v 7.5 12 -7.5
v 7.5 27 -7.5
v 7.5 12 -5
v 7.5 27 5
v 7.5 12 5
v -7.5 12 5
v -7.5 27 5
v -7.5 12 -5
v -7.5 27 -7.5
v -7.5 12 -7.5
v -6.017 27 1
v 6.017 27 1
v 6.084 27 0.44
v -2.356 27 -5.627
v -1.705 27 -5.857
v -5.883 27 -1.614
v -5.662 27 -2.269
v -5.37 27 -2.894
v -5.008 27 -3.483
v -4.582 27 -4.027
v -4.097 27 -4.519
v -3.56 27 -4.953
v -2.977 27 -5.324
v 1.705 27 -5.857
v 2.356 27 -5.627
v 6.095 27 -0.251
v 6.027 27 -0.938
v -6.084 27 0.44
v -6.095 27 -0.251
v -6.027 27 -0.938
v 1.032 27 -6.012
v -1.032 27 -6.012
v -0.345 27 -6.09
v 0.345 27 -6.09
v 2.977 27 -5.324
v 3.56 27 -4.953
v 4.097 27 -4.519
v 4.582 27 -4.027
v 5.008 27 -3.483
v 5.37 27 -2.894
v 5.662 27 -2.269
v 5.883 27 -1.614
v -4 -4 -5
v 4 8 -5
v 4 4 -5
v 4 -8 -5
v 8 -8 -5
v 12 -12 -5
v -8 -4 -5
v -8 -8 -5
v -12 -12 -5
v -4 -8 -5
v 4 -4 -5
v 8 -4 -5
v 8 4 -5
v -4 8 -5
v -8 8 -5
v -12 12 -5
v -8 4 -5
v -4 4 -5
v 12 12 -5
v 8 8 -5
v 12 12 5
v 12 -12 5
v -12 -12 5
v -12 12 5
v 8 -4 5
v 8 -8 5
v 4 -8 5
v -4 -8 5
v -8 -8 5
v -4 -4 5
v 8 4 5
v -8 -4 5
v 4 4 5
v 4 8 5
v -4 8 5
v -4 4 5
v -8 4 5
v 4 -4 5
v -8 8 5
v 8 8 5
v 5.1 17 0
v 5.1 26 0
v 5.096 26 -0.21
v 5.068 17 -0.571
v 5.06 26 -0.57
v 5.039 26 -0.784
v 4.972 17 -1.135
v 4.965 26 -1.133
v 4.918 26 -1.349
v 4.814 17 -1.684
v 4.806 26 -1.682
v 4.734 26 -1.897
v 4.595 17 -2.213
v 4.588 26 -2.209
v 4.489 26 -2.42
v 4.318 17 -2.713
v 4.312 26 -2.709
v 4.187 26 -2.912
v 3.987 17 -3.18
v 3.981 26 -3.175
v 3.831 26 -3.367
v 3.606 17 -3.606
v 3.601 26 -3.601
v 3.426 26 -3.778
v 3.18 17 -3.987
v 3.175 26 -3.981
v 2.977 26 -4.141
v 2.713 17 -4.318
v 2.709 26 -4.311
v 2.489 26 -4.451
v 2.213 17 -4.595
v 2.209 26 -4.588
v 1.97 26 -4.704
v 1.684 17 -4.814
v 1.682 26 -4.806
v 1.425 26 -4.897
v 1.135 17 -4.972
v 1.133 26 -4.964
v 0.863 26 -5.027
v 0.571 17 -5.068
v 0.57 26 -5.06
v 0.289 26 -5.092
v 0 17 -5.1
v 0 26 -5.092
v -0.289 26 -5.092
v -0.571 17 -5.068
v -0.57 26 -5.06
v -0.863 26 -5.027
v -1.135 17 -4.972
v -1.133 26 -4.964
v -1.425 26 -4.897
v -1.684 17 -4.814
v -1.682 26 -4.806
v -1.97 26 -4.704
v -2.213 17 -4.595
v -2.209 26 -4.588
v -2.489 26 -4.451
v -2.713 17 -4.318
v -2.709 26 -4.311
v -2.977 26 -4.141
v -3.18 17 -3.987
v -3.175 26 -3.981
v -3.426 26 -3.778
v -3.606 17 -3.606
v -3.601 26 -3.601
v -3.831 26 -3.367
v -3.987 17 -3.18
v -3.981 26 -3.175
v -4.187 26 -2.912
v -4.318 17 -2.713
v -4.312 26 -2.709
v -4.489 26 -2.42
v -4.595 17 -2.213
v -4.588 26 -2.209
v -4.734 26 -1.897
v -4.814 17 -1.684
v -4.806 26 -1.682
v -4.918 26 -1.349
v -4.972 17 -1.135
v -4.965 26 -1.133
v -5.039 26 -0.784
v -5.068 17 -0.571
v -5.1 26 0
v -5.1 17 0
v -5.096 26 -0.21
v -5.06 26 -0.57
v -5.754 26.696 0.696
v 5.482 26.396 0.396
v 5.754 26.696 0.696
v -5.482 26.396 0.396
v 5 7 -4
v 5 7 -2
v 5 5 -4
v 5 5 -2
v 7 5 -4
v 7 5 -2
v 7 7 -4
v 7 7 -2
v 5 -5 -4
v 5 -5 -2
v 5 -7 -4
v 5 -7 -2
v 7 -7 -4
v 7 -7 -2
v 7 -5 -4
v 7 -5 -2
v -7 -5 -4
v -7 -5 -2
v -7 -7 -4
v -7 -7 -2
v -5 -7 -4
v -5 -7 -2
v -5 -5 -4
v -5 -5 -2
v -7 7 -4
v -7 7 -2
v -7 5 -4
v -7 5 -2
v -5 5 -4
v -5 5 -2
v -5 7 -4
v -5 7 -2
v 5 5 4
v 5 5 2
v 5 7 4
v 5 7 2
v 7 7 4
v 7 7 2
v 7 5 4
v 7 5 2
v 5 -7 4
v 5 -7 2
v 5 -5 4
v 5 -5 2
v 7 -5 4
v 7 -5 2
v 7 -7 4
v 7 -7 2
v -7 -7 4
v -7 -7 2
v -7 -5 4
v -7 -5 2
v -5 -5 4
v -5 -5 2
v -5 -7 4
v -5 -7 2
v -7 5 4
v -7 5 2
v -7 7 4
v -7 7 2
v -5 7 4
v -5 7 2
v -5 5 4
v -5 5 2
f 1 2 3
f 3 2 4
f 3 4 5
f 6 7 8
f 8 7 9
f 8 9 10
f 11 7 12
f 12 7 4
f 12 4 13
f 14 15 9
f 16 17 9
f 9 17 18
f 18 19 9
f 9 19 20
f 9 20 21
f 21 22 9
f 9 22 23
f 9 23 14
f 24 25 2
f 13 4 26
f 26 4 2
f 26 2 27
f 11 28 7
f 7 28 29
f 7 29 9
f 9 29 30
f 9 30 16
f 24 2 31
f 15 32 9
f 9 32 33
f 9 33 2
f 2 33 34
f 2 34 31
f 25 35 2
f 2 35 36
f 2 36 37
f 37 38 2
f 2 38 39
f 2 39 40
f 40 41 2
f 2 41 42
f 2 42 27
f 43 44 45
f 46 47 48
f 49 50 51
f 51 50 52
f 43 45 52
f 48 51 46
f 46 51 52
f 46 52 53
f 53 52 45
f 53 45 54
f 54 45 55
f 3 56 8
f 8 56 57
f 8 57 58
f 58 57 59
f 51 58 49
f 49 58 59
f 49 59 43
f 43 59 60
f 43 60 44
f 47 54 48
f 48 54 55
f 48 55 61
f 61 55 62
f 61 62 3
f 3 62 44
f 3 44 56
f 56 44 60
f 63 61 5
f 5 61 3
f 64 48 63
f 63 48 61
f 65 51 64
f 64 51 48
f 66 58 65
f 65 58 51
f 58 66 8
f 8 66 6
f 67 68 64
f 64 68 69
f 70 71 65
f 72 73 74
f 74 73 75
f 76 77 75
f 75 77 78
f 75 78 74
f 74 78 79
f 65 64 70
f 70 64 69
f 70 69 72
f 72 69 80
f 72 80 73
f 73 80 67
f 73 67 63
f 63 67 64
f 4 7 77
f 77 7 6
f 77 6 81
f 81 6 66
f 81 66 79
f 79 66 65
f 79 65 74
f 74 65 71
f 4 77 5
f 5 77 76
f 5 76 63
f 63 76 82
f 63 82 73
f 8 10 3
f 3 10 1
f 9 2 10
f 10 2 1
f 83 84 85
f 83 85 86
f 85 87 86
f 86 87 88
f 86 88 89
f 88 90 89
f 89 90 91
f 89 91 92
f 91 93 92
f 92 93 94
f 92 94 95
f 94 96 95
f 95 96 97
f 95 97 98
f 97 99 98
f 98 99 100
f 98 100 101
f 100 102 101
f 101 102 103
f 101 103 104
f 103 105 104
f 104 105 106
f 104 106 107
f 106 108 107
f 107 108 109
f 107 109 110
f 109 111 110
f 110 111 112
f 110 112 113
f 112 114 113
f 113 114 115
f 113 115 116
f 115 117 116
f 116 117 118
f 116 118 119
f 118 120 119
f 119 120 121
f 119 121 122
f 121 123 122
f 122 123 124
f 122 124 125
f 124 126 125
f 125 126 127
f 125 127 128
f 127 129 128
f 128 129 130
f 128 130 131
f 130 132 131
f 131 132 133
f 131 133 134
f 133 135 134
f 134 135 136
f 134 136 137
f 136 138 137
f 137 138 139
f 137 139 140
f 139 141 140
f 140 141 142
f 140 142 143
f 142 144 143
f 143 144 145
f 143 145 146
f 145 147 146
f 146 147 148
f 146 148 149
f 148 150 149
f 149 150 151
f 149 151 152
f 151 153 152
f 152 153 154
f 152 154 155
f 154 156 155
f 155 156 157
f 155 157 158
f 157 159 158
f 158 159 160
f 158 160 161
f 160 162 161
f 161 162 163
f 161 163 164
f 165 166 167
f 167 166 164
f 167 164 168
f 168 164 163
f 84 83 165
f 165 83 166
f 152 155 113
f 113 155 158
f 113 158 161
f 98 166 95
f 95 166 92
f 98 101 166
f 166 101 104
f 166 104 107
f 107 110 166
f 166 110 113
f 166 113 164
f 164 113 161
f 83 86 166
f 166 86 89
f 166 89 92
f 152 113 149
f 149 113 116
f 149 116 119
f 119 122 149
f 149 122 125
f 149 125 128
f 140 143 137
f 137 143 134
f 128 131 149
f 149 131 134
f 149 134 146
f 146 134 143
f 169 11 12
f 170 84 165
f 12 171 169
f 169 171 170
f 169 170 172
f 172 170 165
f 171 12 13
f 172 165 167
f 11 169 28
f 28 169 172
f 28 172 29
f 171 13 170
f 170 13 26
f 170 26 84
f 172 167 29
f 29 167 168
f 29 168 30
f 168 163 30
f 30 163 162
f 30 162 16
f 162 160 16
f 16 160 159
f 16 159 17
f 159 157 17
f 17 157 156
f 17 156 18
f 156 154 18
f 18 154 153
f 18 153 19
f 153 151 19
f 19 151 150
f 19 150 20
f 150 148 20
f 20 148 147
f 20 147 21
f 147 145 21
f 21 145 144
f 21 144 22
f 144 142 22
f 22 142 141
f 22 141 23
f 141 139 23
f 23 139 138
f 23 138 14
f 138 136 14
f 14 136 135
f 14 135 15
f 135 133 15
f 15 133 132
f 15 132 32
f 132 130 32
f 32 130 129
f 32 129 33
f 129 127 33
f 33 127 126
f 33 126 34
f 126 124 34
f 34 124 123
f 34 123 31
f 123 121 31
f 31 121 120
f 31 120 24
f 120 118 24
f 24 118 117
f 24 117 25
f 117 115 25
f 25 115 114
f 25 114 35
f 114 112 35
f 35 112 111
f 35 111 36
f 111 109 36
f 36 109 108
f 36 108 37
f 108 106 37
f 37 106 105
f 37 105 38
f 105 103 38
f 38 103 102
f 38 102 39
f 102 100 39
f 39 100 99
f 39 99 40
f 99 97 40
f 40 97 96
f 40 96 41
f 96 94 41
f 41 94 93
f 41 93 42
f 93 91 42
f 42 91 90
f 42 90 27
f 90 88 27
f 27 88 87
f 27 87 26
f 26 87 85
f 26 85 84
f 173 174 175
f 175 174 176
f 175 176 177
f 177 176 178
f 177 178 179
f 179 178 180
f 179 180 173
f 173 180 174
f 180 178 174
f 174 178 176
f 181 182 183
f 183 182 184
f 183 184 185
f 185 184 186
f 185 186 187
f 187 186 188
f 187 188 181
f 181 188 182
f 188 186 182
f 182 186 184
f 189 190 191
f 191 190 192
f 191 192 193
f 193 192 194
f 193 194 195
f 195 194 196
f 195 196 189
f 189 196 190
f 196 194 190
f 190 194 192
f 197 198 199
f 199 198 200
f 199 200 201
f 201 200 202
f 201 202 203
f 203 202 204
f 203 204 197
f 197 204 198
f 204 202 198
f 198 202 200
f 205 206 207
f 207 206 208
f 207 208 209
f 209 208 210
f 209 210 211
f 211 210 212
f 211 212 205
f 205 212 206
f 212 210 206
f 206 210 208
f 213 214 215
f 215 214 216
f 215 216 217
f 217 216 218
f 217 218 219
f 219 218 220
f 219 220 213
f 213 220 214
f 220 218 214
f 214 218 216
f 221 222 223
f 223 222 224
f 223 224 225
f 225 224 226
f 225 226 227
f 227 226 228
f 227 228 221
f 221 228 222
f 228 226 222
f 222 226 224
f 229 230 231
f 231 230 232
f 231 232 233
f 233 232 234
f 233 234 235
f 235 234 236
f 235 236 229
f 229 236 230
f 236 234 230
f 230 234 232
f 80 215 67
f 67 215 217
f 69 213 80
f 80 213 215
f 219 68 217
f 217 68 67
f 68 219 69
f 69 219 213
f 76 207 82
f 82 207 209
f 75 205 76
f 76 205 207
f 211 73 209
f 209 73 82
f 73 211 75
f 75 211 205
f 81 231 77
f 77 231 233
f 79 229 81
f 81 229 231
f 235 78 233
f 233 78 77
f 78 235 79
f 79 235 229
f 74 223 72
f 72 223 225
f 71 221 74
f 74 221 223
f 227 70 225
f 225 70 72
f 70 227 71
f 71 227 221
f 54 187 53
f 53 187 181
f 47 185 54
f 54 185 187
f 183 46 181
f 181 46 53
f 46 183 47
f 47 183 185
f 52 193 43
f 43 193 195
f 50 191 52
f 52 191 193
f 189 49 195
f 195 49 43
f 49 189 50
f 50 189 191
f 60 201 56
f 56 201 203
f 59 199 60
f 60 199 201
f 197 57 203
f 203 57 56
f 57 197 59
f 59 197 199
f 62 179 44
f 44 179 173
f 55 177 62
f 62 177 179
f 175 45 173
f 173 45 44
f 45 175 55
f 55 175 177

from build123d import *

# Parameters (mm, degrees)
AUFSATZ_LINEAR_AUSTRAGEN1_DEPTH      = 5
AUFSATZ_LINEAR_AUSTRAGEN1_DEPTH_BACK = 5
SKIZZE1_W                            = 24
SKIZZE1_H                            = 24
SKIZZE3_W                            = 15
SKIZZE3_H                            = 15
AUFSATZ_LINEAR_AUSTRAGEN2_DEPTH      = 15
SCHNITT_LINEAR_AUSTRAGEN1_DEPTH      = 10
FASE1_SIZE                           = 1
SCHNITT_LINEAR_START                 = -11
SKIZZE6_W                            = 2
SKIZZE6_H                            = 2
SCHNITT_LINEAR_AUSTRAGEN2_DEPTH      = 12
FASE2_SIZE                           = 1
SKIZZE12_W                           = 15
SKIZZE12_H                           = 15
SCHNITT_LINEAR_AUSTRAGEN4_DEPTH      = 2.5


with BuildPart() as part:
    # Skizze1 → Aufsatz-Linear austragen1 (new, two sides: drawn at the far end of the back side and taken through both)
    with BuildSketch(Plane.XY.offset(-AUFSATZ_LINEAR_AUSTRAGEN1_DEPTH_BACK)):
        Rectangle(SKIZZE1_W, SKIZZE1_H)
    extrude(amount=AUFSATZ_LINEAR_AUSTRAGEN1_DEPTH + AUFSATZ_LINEAR_AUSTRAGEN1_DEPTH_BACK)

    # Skizze3 → Aufsatz-Linear austragen2 (add)
    with BuildSketch(Plane(origin=(0, 12, 0), x_dir=(1, 0, 0), z_dir=(0, 1, 0))):
        Rectangle(SKIZZE3_W, SKIZZE3_H)
    extrude(amount=AUFSATZ_LINEAR_AUSTRAGEN2_DEPTH)

    # Skizze5 → Schnitt-Linear austragen1 (cut)
    with BuildSketch(Plane(origin=(0, 27, 0), x_dir=(1, 0, 0), z_dir=(0, 1, 0))):
        with BuildLine():
            Line((-5.1, 0), (5.1, 0))
            ThreePointArc((5.1, 0), (0, 5.1), (-5.1, 0))
        make_face()
    extrude(amount=-SCHNITT_LINEAR_AUSTRAGEN1_DEPTH, mode=Mode.SUBTRACT)

    # Fase1
    fase1_edges = [part.edges().sort_by_distance(p)[0] for p in [
        (0, 27, -5.1),
        (0, 27, 0),
    ]]
    chamfer(fase1_edges, length=FASE1_SIZE)

    # Skizze6 → Schnitt-Linear austragen2 (cut)
    with BuildSketch(Plane.XY.offset(-3).offset(SCHNITT_LINEAR_START)):
        with Locations((6, 6)):
            Rectangle(SKIZZE6_W, SKIZZE6_H)
        with Locations((6, -6)):
            Rectangle(SKIZZE6_W, SKIZZE6_H)
        with Locations((-6, -6)):
            Rectangle(SKIZZE6_W, SKIZZE6_H)
        with Locations((-6, 6)):
            Rectangle(SKIZZE6_W, SKIZZE6_H)
    schnitt_linear_austragen2 = extrude(amount=SCHNITT_LINEAR_AUSTRAGEN2_DEPTH, mode=Mode.SUBTRACT)

    # Spiegeln1: Schnitt-Linear austragen2 across plane
    add(schnitt_linear_austragen2.mirror(Plane.XY), mode=Mode.SUBTRACT)

    # Fase2
    fase2_edges = [part.edges().sort_by_distance(p)[0] for p in [
        (6, 5, 5),
        (7, 6, 5),
        (6, 7, 5),
        (5, 6, 5),
        (6, -7, 5),
        (7, -6, 5),
        (6, -5, 5),
        (5, -6, 5),
        (-6, -7, 5),
        (-5, -6, 5),
        (-6, -5, 5),
        (-7, -6, 5),
        (-6, 5, 5),
        (-5, 6, 5),
        (-6, 7, 5),
        (-7, 6, 5),
        (6, 7, -5),
        (7, 6, -5),
        (6, 5, -5),
        (5, 6, -5),
        (6, -5, -5),
        (7, -6, -5),
        (6, -7, -5),
        (5, -6, -5),
        (-6, -5, -5),
        (-5, -6, -5),
        (-6, -7, -5),
        (-7, -6, -5),
        (-6, 7, -5),
        (-5, 6, -5),
        (-6, 5, -5),
        (-7, 6, -5),
    ]]
    chamfer(fase2_edges, length=FASE2_SIZE)

    # Skizze12 → Schnitt-Linear austragen4 (cut)
    with BuildSketch(Plane.XY.offset(7.5)):
        with Locations((0, 19.5)):
            Rectangle(SKIZZE12_W, SKIZZE12_H)
    extrude(amount=-SCHNITT_LINEAR_AUSTRAGEN4_DEPTH, mode=Mode.SUBTRACT)


solid = part.part
